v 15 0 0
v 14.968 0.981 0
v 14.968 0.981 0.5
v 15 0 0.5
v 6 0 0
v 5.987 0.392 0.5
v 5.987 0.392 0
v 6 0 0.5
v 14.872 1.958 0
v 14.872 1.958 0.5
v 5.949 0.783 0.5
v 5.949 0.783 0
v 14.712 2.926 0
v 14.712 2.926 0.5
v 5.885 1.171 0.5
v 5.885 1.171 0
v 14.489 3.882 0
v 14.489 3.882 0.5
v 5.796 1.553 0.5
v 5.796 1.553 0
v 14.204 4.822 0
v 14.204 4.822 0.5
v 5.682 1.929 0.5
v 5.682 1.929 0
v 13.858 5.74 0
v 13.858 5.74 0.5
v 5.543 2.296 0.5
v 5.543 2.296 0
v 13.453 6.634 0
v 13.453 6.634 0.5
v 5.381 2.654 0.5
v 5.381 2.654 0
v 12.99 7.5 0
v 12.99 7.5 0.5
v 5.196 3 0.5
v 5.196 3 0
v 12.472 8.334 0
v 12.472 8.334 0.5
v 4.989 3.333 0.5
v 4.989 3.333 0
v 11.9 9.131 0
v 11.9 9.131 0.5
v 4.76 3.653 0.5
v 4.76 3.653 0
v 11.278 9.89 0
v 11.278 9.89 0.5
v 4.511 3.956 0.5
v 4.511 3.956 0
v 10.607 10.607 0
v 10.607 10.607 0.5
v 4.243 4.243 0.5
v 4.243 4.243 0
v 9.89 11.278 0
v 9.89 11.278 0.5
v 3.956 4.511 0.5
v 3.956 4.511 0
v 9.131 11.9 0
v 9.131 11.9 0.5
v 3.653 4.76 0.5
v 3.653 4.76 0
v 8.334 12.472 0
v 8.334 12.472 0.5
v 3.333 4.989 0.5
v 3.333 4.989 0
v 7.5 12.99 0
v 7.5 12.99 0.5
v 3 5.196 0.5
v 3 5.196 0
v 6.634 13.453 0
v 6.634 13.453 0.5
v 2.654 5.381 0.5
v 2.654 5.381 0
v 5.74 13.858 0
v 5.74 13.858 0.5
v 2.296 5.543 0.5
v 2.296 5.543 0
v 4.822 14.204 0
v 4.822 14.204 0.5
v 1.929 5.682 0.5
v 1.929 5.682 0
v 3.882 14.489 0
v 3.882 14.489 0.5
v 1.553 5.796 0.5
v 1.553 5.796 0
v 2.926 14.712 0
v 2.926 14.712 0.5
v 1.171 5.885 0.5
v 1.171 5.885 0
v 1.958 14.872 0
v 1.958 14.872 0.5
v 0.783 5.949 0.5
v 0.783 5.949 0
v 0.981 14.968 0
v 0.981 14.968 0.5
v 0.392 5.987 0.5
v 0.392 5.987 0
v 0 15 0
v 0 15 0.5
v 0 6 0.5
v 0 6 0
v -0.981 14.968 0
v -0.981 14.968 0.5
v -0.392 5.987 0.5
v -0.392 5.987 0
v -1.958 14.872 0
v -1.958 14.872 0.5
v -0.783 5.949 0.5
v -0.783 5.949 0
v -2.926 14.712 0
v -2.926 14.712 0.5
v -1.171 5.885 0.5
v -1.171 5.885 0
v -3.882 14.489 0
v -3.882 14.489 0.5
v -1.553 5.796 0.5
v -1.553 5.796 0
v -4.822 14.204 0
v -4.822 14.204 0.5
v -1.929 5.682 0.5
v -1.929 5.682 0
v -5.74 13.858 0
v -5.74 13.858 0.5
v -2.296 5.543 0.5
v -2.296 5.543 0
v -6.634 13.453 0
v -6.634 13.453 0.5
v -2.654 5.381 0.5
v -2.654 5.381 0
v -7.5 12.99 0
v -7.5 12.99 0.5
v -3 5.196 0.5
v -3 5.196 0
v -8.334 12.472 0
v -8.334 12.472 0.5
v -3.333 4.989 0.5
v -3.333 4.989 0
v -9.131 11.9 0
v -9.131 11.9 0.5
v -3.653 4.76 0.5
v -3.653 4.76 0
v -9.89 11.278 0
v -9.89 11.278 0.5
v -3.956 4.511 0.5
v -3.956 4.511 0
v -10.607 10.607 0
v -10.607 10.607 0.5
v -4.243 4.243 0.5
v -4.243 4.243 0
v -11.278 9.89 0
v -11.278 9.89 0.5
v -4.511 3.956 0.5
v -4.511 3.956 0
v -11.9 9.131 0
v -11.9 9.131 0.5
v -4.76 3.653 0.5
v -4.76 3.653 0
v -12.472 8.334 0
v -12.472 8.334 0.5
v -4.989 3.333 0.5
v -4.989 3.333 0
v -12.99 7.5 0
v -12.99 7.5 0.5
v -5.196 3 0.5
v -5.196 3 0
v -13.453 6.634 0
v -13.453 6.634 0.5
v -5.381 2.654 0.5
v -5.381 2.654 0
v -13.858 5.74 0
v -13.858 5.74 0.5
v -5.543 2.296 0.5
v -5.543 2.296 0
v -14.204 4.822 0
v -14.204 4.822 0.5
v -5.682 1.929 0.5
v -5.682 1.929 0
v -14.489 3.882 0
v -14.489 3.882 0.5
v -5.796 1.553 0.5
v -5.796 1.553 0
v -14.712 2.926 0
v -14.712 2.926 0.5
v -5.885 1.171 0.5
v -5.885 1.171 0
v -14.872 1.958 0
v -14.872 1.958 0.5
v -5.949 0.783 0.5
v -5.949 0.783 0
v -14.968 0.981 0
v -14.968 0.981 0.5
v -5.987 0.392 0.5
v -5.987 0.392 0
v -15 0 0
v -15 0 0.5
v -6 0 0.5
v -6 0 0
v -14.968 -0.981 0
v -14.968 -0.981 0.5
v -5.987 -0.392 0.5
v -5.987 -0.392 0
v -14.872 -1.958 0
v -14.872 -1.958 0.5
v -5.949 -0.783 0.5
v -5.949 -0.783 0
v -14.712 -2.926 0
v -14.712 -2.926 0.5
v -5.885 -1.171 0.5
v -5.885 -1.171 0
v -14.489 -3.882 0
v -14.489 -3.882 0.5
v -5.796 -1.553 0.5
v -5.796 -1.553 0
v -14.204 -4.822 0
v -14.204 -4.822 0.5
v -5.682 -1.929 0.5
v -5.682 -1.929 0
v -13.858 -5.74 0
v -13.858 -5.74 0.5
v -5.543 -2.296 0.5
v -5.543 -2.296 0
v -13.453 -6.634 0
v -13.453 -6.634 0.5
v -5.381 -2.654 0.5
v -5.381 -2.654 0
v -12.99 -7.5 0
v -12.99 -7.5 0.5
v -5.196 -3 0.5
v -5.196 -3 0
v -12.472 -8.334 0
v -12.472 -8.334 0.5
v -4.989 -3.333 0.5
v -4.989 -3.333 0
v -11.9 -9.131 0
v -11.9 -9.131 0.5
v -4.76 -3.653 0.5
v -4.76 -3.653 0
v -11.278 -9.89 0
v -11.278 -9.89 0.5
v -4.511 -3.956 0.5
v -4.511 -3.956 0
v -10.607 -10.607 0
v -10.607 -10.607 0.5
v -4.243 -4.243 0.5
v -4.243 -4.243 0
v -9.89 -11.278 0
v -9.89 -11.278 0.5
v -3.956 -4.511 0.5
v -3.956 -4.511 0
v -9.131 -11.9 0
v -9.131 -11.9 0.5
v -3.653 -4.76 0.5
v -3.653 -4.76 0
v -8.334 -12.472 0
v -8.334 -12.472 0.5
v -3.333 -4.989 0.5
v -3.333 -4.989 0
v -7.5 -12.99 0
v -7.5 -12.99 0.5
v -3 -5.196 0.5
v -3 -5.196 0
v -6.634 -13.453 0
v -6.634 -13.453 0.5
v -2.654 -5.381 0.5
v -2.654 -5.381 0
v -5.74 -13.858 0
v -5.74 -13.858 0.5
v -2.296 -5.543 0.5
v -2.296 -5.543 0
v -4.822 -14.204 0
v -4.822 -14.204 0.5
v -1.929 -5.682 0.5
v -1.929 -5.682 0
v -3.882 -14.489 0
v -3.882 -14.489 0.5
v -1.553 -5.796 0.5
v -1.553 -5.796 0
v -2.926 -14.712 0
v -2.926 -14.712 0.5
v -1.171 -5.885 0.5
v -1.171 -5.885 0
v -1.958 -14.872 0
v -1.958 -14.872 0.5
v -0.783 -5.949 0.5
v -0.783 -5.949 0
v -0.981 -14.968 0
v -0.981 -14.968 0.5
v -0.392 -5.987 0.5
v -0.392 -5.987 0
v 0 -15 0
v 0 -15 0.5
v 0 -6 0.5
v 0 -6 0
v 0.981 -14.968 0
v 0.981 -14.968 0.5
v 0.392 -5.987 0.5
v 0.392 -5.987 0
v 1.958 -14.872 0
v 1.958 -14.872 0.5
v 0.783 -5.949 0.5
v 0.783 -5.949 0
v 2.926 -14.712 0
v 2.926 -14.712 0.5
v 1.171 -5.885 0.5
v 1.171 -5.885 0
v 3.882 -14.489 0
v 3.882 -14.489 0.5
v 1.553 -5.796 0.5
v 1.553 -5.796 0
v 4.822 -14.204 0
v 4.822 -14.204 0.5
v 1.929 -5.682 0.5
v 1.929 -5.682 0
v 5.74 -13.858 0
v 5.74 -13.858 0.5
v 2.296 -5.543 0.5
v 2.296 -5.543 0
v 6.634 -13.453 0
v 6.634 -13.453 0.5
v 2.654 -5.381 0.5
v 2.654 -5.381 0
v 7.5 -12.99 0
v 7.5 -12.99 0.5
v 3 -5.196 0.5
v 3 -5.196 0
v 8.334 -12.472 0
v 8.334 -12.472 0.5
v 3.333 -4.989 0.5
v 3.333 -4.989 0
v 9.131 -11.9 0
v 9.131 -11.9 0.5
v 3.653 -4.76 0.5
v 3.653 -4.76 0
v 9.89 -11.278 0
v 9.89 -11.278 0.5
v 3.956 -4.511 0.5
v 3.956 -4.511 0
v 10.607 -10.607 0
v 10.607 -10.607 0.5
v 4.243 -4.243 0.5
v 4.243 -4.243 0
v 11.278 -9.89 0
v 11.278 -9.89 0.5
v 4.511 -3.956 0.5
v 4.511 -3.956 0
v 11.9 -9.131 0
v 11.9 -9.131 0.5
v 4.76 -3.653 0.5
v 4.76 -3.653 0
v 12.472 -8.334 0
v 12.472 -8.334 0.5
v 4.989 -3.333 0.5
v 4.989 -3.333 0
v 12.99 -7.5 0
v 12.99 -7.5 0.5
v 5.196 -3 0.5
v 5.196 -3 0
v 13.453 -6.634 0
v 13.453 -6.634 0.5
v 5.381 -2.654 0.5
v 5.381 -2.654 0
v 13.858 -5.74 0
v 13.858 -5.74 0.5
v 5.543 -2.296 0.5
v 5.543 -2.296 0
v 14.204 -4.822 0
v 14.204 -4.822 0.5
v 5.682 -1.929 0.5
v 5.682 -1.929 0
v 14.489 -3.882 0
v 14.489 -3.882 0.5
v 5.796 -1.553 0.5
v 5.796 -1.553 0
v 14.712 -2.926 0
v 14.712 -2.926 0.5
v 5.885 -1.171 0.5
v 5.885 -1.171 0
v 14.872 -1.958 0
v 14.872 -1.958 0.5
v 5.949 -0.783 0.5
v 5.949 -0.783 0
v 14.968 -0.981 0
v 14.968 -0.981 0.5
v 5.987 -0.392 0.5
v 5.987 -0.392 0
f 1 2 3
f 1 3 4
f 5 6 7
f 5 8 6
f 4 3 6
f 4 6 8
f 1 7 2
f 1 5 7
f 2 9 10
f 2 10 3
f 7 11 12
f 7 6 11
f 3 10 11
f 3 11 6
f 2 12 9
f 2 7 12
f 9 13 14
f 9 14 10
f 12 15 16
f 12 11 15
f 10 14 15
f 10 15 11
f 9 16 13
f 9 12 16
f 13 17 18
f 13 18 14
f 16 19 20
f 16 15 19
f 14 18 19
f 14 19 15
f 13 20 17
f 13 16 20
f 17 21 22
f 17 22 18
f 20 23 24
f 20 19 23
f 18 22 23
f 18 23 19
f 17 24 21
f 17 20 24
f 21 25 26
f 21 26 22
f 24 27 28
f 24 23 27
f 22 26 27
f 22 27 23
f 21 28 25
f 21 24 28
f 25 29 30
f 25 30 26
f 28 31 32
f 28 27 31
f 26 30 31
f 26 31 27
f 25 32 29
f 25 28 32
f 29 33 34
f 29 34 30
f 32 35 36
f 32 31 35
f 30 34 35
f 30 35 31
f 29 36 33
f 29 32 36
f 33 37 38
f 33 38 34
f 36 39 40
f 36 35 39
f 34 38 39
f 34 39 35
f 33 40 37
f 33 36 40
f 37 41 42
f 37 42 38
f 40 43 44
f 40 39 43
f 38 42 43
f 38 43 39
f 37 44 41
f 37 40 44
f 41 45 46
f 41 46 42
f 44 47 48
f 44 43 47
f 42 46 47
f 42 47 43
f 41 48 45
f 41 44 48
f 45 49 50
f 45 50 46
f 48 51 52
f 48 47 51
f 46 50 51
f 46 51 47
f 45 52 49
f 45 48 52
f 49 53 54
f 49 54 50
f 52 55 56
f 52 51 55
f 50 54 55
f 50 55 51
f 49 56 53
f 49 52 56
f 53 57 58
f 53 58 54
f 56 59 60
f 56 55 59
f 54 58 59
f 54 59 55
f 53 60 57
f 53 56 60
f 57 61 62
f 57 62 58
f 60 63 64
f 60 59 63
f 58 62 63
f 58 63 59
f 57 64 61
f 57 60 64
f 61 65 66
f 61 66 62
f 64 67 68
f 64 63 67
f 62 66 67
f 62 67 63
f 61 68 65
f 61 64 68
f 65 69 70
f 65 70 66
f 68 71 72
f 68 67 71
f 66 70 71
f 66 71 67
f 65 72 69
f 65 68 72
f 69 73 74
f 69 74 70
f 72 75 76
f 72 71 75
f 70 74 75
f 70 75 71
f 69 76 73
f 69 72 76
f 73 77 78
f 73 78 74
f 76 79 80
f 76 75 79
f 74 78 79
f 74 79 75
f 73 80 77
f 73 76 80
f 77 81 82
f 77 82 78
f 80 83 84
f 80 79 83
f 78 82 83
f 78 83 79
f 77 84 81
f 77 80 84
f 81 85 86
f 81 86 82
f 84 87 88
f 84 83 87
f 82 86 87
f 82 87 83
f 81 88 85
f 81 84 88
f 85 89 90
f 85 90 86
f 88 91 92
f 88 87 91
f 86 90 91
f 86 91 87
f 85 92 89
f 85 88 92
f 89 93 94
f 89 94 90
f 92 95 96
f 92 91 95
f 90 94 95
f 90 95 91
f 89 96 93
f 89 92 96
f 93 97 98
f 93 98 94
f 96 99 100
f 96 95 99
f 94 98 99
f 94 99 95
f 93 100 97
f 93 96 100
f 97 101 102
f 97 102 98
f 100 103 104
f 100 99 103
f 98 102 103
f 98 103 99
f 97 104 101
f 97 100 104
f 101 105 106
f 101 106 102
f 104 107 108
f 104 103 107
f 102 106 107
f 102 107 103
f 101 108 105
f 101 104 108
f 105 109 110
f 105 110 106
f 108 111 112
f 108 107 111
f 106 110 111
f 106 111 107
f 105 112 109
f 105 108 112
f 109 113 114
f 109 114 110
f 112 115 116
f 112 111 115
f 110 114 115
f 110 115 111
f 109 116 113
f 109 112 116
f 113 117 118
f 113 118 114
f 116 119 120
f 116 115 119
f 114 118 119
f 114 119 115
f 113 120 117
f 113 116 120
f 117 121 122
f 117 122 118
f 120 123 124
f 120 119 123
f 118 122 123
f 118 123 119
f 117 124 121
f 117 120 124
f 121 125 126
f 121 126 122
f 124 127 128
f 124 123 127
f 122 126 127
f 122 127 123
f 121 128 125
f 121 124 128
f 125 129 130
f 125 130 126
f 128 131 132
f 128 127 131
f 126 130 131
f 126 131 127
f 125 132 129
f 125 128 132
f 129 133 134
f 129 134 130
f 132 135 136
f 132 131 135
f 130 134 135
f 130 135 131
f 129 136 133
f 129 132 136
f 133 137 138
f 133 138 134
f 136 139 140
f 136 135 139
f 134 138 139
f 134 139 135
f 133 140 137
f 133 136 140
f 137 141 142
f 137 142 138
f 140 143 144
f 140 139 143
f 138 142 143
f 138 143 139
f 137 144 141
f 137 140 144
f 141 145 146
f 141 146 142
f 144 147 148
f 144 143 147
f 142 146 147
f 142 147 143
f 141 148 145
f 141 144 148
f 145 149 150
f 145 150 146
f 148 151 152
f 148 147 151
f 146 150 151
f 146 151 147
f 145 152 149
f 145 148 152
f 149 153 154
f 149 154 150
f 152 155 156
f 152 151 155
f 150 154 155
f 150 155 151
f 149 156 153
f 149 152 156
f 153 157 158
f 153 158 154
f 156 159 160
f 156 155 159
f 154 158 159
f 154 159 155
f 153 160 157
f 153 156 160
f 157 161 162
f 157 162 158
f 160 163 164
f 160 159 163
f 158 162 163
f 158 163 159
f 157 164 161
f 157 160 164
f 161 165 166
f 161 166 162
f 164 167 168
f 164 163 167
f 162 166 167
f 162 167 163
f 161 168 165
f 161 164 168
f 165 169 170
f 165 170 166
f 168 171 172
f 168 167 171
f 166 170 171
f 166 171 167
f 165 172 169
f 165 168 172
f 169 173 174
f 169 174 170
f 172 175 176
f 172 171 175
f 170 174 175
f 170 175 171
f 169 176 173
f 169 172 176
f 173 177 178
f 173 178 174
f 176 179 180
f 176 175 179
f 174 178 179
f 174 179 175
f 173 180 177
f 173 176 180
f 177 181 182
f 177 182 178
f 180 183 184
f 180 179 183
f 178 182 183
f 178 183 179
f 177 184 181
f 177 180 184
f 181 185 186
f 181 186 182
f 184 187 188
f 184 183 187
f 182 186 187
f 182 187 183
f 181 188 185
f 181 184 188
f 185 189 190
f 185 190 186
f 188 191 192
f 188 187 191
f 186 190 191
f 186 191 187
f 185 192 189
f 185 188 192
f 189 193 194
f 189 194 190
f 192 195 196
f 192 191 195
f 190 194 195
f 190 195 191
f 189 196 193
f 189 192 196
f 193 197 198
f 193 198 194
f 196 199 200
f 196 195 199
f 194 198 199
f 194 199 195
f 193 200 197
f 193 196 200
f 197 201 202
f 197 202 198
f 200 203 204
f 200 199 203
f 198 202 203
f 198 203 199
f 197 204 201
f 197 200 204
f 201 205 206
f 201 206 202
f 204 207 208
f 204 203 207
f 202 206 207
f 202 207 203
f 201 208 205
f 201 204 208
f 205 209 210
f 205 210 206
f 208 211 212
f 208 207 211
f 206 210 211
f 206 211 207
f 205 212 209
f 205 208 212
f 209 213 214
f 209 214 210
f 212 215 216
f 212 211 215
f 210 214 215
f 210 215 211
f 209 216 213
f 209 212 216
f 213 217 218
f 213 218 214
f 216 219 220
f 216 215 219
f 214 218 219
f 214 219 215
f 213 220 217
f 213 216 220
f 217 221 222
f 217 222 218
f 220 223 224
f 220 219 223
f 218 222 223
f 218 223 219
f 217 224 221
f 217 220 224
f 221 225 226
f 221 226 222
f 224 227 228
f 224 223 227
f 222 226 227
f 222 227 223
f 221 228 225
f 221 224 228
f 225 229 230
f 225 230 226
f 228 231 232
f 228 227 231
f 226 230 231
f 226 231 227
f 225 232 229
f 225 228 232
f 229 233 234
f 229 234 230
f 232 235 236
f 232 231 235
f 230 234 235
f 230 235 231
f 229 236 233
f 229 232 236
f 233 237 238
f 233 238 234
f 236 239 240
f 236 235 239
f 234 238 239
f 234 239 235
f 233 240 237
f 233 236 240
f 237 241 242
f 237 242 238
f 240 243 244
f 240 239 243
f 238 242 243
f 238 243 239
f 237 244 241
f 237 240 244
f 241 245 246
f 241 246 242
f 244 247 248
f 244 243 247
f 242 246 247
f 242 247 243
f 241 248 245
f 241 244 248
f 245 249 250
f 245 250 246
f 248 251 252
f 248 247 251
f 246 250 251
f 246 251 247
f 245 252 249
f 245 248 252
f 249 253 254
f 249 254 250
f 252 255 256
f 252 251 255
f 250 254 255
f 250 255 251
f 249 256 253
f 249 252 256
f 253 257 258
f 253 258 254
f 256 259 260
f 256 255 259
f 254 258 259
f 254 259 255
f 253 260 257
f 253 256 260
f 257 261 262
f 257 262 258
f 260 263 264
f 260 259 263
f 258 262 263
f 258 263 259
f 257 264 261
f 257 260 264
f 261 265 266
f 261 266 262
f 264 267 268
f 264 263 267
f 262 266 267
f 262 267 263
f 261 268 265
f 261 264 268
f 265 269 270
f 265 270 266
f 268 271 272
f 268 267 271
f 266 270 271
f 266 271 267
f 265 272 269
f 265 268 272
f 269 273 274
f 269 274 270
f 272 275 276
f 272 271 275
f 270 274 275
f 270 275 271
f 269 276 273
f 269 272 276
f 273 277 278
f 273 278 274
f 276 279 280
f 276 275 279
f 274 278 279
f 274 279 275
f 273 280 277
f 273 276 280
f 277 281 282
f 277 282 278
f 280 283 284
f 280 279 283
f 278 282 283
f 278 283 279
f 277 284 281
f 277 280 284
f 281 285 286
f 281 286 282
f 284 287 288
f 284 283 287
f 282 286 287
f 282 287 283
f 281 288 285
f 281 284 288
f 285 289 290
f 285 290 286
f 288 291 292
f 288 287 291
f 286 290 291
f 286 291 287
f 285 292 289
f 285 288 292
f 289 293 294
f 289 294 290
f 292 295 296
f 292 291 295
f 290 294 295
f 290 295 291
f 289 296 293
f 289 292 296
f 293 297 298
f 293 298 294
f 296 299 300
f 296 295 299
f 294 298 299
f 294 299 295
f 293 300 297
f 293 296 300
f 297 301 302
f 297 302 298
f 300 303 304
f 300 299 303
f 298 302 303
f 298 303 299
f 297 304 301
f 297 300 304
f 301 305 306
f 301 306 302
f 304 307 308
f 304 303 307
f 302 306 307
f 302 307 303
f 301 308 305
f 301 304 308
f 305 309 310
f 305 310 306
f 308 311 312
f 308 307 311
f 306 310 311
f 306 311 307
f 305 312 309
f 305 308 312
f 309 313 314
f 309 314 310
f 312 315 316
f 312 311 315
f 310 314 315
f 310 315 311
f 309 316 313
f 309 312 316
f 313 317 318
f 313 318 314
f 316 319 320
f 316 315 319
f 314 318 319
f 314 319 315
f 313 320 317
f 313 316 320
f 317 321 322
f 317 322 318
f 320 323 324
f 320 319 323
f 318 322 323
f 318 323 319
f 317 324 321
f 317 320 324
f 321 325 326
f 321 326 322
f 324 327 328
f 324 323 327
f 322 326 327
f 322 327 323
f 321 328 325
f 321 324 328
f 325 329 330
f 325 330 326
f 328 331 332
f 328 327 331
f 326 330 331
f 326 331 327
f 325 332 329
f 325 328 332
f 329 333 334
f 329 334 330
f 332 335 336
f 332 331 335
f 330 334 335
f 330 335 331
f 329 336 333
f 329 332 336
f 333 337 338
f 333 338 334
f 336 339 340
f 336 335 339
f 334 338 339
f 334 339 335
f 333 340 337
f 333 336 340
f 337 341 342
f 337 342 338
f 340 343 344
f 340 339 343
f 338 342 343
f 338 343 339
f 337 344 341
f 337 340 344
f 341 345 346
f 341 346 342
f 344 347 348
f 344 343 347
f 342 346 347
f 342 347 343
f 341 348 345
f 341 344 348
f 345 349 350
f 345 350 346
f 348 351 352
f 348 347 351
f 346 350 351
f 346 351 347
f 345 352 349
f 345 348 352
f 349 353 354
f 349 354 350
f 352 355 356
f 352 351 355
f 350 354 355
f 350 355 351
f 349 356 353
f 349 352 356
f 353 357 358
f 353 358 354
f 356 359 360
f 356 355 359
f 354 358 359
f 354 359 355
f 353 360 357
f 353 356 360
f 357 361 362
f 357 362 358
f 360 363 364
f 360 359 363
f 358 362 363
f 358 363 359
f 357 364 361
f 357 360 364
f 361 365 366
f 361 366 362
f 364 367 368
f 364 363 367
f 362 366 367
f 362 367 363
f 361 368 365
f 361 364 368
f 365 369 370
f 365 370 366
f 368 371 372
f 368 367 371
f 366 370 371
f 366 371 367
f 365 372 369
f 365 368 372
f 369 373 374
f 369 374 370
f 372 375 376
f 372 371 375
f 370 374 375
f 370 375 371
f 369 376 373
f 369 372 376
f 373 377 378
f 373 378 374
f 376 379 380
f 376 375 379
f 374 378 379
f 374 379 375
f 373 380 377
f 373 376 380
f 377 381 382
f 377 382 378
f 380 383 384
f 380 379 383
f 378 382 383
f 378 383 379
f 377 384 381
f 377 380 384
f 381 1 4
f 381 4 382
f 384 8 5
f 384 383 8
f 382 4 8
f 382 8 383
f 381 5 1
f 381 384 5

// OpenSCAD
// Original MechIntel educational model. CC0-1.0. Units: mm.
// Not a standardized or load-rated component.
$fn=96;
outer_diameter=30;
inner_diameter=12;
height=0.5;
difference(){ cylinder(d=outer_diameter,h=height); if(inner_diameter>0) translate([0,0,-1]) cylinder(d=inner_diameter,h=height+2); }
